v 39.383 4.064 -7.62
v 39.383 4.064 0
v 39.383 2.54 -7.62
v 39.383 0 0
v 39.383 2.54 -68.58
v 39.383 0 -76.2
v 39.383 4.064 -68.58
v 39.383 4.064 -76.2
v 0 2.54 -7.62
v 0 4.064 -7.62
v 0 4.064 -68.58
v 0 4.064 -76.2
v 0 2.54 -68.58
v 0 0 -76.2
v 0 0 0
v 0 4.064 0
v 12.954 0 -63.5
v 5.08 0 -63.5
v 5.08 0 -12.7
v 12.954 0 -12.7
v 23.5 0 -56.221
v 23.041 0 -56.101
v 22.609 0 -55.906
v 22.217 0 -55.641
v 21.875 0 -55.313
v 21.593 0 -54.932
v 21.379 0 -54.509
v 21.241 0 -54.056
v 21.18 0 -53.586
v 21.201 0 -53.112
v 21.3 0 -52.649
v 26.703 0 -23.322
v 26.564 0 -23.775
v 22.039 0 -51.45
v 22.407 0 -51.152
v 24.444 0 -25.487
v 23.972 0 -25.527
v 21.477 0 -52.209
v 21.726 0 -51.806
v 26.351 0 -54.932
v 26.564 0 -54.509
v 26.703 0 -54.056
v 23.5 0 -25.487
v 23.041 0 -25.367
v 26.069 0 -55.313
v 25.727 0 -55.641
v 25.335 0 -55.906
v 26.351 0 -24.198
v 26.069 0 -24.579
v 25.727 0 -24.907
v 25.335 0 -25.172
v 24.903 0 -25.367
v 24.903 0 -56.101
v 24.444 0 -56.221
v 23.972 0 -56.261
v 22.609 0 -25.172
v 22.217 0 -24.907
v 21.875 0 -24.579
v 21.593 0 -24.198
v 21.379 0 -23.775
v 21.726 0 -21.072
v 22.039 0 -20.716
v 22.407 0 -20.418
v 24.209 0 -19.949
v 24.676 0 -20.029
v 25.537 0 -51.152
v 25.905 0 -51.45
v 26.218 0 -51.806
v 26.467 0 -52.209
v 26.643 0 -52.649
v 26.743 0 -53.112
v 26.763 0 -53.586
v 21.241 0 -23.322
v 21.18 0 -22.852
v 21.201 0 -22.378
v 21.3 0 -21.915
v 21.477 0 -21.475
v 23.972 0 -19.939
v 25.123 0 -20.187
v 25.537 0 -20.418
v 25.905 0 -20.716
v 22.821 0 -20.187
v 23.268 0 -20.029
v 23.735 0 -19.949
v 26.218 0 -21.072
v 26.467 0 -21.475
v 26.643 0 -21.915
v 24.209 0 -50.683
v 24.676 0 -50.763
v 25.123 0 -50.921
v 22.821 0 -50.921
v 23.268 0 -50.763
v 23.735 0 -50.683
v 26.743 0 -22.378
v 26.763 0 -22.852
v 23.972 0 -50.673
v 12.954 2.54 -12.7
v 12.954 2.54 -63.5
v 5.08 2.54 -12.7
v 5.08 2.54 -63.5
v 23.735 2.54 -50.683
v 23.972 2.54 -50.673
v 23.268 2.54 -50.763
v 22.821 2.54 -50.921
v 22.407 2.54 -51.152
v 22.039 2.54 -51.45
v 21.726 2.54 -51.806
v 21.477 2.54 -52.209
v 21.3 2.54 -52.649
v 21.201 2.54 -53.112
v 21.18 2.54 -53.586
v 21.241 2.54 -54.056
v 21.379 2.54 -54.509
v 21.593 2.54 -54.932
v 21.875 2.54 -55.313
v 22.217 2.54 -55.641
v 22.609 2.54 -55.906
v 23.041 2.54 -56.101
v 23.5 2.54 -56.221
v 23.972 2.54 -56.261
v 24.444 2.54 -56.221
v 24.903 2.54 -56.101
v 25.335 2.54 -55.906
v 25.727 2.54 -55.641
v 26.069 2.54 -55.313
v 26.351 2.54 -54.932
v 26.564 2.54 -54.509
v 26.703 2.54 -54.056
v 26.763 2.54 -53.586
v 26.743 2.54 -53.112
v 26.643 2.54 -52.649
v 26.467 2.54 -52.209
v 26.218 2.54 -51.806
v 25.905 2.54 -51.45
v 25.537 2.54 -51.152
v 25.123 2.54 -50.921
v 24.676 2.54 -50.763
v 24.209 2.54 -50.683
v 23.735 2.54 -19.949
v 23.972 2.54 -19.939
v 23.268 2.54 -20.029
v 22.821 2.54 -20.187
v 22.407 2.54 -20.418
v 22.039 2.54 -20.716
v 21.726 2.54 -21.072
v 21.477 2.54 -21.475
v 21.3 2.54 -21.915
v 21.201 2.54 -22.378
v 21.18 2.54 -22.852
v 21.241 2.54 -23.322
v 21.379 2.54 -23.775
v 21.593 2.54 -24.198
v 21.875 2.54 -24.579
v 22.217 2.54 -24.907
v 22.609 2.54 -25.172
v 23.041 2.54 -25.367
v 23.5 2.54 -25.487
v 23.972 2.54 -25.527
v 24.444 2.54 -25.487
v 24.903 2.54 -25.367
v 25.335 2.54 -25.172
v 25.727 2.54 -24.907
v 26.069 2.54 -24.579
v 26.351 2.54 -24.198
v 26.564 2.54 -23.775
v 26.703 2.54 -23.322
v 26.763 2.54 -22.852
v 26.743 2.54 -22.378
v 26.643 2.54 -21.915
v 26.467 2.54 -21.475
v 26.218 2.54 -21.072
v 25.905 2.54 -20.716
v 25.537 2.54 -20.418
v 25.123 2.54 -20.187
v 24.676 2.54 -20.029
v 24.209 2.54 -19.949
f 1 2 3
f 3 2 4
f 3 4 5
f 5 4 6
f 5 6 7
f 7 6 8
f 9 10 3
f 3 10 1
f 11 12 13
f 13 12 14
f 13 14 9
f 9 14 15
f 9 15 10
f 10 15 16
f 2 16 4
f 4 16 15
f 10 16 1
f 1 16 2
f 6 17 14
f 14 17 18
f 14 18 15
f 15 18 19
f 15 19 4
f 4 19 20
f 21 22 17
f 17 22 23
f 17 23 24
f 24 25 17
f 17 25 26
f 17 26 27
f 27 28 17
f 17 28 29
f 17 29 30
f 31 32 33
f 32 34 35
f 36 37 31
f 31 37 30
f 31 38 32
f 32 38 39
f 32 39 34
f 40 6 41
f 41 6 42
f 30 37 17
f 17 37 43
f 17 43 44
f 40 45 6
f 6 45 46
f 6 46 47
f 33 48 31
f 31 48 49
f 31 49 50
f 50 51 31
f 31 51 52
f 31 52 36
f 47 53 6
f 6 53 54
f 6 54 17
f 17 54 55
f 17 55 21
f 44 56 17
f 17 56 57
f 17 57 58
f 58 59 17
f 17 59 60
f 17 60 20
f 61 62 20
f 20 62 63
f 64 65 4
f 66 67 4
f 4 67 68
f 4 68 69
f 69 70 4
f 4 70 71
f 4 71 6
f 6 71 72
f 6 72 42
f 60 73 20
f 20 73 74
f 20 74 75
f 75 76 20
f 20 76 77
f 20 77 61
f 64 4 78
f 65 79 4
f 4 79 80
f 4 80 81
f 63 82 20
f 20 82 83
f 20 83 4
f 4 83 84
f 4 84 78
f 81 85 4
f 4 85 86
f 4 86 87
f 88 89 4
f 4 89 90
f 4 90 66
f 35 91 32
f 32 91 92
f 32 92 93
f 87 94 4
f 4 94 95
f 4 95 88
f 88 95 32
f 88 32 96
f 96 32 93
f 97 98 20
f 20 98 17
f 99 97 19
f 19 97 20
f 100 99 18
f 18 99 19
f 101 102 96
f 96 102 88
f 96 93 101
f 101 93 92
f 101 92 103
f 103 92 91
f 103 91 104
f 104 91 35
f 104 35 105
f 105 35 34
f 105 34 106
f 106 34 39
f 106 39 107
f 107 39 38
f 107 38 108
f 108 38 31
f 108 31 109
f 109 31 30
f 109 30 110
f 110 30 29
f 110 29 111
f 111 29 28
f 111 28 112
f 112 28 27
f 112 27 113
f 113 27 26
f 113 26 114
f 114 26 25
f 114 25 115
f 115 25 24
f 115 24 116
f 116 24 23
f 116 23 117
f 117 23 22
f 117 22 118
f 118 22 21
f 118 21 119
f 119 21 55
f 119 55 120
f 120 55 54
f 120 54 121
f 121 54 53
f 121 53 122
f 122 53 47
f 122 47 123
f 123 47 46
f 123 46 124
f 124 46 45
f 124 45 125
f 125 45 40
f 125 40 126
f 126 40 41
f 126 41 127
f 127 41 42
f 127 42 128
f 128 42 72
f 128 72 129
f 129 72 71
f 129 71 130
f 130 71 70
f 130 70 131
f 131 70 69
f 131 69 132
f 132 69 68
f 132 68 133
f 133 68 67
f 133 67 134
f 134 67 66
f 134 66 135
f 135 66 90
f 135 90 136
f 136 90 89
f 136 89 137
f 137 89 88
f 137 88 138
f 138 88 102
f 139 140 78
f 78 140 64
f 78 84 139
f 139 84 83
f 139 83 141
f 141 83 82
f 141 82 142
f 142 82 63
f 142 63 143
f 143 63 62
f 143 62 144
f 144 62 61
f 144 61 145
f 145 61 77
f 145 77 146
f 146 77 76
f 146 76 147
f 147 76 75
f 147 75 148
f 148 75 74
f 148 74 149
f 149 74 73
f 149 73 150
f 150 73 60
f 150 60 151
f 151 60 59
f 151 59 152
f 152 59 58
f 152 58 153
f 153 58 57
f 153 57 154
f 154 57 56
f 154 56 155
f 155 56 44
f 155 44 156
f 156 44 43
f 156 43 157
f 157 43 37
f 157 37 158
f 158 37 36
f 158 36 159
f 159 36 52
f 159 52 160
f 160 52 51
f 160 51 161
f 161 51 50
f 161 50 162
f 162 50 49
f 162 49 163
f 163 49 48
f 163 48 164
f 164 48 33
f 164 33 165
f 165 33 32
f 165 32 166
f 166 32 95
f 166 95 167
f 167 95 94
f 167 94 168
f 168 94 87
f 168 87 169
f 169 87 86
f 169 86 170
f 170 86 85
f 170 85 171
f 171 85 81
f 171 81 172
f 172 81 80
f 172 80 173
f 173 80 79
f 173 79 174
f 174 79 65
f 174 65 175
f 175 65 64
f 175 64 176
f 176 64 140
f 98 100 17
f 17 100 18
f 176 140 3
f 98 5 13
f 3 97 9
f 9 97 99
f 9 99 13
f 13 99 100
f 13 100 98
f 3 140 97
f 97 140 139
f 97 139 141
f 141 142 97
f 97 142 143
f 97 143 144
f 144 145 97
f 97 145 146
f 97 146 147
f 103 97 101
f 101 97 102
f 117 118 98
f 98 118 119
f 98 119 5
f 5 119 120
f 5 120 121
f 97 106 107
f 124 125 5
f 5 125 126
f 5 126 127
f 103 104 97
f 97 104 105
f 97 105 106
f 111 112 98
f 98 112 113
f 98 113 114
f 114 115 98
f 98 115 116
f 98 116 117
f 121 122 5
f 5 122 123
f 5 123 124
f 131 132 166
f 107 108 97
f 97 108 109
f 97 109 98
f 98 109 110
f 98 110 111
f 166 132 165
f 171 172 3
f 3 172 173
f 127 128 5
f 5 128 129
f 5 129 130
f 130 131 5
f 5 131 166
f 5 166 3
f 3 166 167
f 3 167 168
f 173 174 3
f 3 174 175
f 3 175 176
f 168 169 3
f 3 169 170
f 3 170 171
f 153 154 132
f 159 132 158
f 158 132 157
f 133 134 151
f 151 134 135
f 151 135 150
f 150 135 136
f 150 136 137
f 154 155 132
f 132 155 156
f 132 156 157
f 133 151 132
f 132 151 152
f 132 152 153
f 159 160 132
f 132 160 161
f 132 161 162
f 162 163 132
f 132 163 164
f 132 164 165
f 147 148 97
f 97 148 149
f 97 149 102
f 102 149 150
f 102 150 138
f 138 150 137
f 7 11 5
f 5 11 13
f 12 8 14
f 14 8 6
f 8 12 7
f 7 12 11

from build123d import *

# Parameters (mm, degrees)
SKETCH2_W             = 39.3827
SKETCH2_H             = 7.62
BOSS_EXTRUDE2_DEPTH   = 4.064
BOSS_EXTRUDE2_2_DEPTH = 4.064
SKETCH2_3_W           = 39.3827
SKETCH2_3_H           = 60.96
SKETCH2_3_R           = 2.794
BOSS_EXTRUDE3_DEPTH   = 2.54


with BuildPart() as part:
    # Sketch2 → Boss-Extrude2 (new body)
    with BuildSketch(Plane(origin=(0, 0, 0), x_dir=(1, 0, 0), z_dir=(0, 1, 0))):
        with Locations((19.69135, 3.81)):
            Rectangle(SKETCH2_W, SKETCH2_H)
    extrude(amount=BOSS_EXTRUDE2_DEPTH)



with BuildPart() as body_2:
    # Sketch2 → Boss-Extrude2 2 (new body)
    with BuildSketch(Plane(origin=(0, 0, 0), x_dir=(1, 0, 0), z_dir=(0, 1, 0))):
        with Locations((19.69135, 72.39)):
            Rectangle(SKETCH2_W, SKETCH2_H)
    extrude(amount=BOSS_EXTRUDE2_2_DEPTH)


with BuildPart() as part_1:
    add(part.part)

    add(body_2.part)  # Boss-Extrude3 merges body 2
    # Sketch2<3> → Boss-Extrude3 (add)
    with BuildSketch(Plane(origin=(0, 0, 0), x_dir=(1, 0, 0), z_dir=(0, 1, 0))):
        with Locations((19.69135, 38.1)):
            Rectangle(SKETCH2_3_W, SKETCH2_3_H)
        Polygon((12.954, 63.5), (12.954, 38.1), (12.954, 12.7), (5.08, 12.7), (5.08, 63.5), align=None, mode=Mode.SUBTRACT)
        with Locations((23.971932262, 22.733)):
            Circle(SKETCH2_3_R, mode=Mode.SUBTRACT)
        with Locations((23.971932262, 53.467)):
            Circle(SKETCH2_3_R, mode=Mode.SUBTRACT)
    extrude(amount=BOSS_EXTRUDE3_DEPTH)


solid = part_1.part
